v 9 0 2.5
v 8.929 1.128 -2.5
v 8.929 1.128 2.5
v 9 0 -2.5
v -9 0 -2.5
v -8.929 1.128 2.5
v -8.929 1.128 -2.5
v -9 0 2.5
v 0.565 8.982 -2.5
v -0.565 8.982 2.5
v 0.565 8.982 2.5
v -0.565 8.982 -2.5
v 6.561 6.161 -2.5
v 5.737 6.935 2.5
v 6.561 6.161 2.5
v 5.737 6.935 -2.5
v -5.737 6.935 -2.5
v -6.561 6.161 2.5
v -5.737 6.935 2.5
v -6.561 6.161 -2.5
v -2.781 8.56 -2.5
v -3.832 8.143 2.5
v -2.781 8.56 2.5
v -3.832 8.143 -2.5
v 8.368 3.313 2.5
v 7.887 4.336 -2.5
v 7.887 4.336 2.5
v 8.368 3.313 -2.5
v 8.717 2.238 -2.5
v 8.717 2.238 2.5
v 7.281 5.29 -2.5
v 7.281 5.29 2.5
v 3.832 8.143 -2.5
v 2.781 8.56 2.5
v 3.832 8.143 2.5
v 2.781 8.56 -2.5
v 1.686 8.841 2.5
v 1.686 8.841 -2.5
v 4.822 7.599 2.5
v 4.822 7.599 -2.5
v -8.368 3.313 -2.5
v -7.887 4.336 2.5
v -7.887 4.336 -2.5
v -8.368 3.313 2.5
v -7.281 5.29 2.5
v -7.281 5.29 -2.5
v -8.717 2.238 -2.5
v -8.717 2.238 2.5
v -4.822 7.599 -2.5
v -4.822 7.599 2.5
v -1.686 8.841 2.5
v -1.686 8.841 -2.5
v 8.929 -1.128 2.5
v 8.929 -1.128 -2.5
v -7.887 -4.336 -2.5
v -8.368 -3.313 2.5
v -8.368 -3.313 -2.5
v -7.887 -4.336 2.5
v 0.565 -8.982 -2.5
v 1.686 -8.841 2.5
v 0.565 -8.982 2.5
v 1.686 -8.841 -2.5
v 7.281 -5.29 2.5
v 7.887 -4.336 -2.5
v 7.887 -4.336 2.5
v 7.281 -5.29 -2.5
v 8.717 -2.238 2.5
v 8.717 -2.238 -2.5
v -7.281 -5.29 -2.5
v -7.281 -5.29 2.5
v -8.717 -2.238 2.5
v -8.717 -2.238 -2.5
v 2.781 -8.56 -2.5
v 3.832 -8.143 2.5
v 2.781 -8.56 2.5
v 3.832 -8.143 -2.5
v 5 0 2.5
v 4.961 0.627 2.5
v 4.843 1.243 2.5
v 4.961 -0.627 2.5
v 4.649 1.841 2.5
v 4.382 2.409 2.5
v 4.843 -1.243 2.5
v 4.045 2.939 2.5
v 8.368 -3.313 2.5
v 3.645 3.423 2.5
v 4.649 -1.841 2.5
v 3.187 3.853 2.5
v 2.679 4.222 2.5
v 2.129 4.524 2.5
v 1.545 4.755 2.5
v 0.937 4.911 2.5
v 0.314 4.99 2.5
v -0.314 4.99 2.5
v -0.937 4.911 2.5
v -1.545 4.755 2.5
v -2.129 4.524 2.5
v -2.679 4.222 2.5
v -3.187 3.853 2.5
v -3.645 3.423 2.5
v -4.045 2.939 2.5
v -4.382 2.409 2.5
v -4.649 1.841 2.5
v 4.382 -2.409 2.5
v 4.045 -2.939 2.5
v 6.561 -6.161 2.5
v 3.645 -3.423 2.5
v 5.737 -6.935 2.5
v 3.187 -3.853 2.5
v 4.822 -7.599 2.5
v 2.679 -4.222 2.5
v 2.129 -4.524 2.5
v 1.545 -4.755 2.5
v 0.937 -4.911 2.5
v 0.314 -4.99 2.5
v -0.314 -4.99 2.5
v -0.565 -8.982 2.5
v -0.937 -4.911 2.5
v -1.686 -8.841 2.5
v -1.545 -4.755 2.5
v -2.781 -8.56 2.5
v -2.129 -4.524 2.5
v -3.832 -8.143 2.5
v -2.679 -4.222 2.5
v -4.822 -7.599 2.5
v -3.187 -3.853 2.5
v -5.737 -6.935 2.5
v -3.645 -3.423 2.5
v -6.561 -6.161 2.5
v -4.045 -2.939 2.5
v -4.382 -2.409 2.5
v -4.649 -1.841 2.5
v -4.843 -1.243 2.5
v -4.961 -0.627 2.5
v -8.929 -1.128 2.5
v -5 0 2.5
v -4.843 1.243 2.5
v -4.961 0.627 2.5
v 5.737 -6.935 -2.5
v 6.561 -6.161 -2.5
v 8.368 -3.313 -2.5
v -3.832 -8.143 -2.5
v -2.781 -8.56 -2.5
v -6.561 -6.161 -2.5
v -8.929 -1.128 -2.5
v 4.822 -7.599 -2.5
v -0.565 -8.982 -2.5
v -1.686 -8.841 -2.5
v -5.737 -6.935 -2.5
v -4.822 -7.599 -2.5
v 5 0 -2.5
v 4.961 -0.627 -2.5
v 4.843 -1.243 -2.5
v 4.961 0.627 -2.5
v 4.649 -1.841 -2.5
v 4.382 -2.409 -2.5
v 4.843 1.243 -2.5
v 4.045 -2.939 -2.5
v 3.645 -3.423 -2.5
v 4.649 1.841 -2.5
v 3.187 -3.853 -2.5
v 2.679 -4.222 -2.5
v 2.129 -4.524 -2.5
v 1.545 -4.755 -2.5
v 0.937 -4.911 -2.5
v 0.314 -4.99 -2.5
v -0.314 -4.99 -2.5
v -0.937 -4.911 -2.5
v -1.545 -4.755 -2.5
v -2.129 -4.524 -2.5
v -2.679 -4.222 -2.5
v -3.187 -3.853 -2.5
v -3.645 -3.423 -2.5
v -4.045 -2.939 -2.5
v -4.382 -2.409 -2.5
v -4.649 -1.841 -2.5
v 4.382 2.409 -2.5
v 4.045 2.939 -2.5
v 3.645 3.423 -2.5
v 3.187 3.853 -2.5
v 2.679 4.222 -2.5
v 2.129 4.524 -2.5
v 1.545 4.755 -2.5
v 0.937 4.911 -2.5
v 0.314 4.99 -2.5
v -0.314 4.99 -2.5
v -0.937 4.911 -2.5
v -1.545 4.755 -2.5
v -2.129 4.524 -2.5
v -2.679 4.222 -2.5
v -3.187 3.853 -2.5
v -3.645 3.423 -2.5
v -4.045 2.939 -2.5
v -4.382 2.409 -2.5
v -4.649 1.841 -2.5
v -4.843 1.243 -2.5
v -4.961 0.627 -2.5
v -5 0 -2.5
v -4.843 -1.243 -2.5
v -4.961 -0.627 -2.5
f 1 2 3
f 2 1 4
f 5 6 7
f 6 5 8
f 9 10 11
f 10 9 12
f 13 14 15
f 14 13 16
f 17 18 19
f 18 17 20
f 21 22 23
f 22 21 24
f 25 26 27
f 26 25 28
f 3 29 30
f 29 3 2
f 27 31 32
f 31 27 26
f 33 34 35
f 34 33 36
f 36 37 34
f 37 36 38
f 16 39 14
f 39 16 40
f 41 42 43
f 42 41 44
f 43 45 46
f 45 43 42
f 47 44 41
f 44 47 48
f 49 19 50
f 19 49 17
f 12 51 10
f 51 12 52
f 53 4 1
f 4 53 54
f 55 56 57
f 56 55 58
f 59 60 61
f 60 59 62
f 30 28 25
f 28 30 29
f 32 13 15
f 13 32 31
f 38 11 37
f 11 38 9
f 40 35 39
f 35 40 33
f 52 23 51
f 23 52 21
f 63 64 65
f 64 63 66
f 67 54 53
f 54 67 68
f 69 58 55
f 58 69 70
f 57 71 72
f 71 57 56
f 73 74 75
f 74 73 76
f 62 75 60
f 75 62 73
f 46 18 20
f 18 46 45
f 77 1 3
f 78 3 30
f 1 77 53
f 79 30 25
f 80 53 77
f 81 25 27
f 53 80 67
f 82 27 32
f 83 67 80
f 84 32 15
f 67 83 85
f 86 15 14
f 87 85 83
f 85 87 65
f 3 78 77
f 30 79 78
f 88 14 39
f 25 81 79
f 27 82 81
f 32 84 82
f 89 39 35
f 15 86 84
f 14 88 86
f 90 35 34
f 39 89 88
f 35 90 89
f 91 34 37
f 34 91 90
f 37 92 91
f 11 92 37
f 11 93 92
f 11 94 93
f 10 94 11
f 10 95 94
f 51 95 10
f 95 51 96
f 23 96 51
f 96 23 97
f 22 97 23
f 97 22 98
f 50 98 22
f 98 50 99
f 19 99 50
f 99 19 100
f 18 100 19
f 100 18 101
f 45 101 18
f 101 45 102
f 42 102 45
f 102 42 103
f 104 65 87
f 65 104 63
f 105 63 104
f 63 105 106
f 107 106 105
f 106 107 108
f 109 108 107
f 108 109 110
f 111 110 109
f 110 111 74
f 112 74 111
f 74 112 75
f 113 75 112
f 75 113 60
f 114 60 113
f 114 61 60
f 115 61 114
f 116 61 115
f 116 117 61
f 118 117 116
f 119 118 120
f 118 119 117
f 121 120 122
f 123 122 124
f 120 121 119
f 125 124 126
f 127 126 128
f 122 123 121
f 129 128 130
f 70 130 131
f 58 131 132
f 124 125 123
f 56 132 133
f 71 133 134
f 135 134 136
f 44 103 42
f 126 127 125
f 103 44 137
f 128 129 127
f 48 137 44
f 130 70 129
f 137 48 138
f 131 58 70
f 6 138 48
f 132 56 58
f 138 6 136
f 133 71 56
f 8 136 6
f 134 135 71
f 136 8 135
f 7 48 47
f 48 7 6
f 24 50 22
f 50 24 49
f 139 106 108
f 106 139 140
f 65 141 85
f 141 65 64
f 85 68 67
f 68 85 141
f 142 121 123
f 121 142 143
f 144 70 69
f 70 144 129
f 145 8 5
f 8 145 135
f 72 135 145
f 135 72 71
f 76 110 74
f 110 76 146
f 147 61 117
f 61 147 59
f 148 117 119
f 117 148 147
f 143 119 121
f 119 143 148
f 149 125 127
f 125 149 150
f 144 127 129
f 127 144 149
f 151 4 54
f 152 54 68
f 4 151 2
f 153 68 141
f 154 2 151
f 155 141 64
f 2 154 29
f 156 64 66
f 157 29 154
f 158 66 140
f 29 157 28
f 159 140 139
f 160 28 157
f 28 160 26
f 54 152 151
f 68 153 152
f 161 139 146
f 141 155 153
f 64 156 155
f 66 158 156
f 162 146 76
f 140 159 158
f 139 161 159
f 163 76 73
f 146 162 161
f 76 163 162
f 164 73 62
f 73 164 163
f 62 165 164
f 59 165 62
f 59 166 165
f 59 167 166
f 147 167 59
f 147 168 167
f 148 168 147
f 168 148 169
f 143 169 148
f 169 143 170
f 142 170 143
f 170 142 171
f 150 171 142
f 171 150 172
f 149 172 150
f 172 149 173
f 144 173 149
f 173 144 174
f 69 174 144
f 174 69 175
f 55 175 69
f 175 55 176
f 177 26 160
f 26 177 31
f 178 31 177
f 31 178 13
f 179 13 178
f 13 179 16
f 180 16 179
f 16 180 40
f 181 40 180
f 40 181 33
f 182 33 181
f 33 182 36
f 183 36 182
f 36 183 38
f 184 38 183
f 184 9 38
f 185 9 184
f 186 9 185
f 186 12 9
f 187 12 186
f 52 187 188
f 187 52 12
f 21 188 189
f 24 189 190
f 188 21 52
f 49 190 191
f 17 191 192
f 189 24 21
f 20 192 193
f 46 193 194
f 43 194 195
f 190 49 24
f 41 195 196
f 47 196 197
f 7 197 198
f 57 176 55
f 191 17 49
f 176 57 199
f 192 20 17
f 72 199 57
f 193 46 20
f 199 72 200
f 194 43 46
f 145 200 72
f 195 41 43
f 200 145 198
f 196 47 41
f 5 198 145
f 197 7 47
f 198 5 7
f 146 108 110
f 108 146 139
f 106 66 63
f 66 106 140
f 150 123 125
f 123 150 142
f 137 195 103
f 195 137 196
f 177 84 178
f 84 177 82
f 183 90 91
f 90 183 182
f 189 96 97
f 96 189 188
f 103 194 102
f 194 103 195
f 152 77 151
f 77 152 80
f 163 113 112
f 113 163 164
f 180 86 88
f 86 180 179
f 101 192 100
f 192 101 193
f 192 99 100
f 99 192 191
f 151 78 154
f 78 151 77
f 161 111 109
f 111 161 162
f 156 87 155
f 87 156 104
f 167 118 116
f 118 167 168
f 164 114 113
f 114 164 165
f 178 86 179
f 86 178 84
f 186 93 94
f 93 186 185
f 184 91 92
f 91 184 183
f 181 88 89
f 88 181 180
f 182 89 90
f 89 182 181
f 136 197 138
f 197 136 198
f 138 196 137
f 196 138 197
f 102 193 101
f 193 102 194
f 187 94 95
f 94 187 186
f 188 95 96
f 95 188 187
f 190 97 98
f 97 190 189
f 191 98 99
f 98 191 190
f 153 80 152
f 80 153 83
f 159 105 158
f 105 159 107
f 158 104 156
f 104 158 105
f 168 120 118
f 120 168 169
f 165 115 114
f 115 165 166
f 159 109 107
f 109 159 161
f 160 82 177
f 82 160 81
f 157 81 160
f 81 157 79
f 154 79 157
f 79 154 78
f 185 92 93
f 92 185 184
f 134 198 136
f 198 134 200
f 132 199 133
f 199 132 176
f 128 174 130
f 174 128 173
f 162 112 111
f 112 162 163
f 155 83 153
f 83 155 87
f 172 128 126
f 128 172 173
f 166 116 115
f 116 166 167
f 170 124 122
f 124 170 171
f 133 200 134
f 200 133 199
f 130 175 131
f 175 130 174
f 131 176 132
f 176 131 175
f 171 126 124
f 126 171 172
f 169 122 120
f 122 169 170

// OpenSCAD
$fn = 50;


difference() {
	union() {
		translate(v = [0, 0, -2.5000000000]) {
			cylinder(h = 5, r = 9.0000000000);
		}
	}
	union() {
		translate(v = [0, 0, -100.0000000000]) {
			cylinder(h = 200, r = 5.0000000000);
		}
	}
}
